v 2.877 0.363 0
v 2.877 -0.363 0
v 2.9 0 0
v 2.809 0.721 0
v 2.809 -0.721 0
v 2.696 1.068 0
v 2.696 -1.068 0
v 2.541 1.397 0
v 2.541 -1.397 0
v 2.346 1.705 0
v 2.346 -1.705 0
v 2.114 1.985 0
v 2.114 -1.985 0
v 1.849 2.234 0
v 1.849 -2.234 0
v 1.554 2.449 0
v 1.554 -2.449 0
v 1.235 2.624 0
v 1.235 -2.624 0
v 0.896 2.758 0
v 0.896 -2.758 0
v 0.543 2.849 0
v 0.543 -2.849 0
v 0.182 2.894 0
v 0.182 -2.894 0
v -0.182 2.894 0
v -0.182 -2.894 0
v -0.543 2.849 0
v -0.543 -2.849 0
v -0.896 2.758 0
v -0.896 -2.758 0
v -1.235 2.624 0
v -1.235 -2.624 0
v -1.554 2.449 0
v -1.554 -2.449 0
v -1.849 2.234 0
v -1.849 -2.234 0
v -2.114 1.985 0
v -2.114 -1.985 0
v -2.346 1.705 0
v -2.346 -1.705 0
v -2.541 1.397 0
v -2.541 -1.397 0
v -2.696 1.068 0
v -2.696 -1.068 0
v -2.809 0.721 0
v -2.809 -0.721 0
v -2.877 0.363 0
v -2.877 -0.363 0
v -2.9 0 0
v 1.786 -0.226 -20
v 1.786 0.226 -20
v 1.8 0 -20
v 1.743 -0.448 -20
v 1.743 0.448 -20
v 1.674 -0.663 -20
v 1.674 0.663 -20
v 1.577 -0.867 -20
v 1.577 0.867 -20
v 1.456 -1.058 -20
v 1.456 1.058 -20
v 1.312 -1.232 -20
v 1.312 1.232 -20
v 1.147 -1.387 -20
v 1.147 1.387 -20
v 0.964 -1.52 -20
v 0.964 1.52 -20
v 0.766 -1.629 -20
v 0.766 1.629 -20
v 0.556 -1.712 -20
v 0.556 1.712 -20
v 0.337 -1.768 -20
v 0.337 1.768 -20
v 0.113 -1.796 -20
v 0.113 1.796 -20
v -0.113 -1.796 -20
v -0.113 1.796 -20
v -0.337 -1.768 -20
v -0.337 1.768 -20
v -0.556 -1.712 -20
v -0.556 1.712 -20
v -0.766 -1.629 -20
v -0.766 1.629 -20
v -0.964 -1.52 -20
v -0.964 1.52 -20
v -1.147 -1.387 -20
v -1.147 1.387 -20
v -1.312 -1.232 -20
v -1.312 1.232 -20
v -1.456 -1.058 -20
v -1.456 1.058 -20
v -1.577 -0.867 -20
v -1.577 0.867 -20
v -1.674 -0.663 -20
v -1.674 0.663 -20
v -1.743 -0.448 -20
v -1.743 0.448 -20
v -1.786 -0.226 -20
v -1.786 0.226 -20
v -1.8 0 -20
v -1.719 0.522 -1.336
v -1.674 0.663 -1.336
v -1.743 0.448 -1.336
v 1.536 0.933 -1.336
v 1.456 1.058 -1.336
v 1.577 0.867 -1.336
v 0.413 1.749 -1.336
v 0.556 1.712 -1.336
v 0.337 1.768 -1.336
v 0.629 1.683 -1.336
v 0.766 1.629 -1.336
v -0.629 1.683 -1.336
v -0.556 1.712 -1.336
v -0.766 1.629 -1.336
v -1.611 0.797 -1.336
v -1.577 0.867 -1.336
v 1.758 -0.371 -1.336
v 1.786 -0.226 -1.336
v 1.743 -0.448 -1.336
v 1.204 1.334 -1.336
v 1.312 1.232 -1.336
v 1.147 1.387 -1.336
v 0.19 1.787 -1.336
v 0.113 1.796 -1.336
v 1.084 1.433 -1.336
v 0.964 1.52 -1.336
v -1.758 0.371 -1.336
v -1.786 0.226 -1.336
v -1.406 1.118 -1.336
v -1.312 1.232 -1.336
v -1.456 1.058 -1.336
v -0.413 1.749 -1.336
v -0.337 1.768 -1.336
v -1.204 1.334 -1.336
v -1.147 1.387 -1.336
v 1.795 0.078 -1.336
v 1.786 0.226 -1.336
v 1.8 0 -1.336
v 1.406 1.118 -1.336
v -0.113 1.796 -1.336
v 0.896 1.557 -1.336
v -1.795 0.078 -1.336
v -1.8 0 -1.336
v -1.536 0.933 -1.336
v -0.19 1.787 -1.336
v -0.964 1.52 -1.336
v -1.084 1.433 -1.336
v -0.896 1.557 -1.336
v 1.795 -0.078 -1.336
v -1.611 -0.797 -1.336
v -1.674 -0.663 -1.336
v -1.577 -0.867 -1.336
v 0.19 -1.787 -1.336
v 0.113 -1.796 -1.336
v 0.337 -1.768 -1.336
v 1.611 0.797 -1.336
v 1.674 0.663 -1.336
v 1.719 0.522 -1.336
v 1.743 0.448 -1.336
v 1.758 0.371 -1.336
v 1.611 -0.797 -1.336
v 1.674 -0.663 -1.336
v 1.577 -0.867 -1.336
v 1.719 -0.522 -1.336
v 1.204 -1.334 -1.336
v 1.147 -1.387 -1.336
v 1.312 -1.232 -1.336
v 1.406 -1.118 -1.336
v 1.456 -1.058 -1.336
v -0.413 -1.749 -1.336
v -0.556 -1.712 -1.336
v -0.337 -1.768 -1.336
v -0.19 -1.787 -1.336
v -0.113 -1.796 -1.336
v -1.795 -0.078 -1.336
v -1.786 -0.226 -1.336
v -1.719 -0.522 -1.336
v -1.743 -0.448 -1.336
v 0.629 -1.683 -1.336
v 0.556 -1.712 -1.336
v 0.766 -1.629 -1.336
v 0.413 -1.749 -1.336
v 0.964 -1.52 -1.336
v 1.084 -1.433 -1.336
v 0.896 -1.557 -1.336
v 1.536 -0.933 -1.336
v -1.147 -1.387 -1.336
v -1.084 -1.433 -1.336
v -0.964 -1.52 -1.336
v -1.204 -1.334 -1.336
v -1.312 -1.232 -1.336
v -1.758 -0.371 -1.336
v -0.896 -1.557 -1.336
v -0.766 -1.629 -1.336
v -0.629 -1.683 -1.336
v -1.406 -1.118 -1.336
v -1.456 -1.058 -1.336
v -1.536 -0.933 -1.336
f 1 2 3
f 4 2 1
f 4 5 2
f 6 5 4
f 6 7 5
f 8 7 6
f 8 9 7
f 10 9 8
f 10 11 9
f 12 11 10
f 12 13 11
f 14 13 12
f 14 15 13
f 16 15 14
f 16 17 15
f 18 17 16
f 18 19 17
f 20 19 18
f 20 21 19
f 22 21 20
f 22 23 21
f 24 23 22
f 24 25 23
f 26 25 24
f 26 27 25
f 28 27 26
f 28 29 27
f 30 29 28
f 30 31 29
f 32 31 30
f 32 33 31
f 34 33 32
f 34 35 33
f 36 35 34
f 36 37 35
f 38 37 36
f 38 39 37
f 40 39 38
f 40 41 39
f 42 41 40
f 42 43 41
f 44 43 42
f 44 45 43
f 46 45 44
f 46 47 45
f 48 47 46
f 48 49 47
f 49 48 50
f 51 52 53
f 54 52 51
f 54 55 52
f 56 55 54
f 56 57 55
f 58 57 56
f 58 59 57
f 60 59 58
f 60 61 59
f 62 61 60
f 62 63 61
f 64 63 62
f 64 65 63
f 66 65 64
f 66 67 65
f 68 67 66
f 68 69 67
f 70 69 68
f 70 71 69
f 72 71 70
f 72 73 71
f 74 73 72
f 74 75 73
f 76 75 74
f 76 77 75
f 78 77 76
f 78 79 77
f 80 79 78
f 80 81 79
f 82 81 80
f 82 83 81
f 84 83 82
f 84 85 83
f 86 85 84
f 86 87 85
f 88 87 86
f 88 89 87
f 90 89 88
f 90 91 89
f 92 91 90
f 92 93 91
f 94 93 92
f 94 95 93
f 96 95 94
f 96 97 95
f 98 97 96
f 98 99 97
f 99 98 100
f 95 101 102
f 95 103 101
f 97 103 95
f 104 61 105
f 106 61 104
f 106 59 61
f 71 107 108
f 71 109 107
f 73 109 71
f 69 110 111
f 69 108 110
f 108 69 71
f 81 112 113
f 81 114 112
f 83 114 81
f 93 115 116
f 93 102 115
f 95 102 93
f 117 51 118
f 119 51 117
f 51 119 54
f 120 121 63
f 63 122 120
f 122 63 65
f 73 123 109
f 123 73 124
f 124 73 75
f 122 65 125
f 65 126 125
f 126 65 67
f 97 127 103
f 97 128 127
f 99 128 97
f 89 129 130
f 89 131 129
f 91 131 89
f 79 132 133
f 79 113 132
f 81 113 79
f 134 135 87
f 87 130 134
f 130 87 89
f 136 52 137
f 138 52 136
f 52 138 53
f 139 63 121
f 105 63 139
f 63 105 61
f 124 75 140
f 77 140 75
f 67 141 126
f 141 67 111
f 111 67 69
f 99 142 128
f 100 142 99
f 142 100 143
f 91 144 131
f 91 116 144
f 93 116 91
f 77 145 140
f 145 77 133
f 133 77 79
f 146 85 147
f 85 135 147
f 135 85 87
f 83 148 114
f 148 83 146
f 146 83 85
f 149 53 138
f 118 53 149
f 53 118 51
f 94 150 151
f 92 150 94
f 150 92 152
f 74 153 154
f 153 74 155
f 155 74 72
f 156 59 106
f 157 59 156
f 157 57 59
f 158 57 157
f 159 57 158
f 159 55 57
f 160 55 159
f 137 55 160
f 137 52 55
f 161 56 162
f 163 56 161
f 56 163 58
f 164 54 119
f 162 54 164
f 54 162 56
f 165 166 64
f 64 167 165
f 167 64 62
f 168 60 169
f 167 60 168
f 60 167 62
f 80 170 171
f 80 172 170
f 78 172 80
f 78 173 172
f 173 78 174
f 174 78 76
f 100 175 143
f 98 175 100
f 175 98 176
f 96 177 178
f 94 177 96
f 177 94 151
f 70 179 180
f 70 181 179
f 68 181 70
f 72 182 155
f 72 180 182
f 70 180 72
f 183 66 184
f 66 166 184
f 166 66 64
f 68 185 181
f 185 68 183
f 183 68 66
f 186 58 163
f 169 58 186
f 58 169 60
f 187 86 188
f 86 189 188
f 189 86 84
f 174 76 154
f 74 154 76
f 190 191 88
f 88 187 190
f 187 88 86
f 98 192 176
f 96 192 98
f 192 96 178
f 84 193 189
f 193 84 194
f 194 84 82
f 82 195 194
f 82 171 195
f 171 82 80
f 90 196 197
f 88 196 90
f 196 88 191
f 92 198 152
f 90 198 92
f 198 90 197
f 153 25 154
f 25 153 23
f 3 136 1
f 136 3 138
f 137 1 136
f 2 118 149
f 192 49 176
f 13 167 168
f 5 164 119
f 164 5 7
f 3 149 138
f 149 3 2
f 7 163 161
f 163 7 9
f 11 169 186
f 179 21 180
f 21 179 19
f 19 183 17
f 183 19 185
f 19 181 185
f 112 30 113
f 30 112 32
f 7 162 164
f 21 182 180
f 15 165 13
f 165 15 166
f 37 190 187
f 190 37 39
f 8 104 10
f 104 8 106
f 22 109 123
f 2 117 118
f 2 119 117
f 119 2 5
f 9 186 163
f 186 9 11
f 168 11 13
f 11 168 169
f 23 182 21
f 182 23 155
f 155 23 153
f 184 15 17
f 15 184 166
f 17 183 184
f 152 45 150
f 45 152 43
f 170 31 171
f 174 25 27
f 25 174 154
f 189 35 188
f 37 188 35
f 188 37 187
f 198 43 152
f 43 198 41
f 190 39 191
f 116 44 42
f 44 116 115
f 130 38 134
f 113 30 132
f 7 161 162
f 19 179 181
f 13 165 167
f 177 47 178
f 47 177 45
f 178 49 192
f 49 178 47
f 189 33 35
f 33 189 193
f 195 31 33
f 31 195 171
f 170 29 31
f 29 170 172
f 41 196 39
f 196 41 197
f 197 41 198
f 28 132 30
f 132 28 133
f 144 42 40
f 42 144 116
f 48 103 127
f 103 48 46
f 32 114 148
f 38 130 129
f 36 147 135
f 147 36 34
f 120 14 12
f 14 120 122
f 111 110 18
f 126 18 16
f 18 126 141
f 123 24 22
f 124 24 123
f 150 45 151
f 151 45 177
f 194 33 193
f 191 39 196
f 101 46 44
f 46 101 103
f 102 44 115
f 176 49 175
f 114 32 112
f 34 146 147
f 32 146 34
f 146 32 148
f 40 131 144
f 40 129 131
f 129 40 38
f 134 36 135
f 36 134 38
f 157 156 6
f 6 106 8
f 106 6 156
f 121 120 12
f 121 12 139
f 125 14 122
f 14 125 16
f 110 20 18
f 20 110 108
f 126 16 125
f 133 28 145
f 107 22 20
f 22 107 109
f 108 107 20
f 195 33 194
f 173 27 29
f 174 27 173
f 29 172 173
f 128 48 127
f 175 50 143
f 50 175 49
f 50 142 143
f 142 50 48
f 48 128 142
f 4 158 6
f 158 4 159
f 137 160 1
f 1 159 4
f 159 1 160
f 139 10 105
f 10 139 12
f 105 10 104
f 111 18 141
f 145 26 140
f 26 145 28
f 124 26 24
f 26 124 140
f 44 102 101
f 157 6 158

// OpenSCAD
$fn = 50;


difference() {
	union() {
		translate(v = [0, 0, 0]) {
			rotate(a = [0, 0, 0]) {
				difference() {
					union() {
						translate(v = [0, 0, -20.0000000000]) {
							cylinder(h = 20, r = 1.5000000000);
						}
						translate(v = [0, 0, -20.0000000000]) {
							cylinder(h = 20, r = 1.8000000000);
						}
						translate(v = [0, 0, -1.7000000000]) {
							cylinder(h = 1.7000000000, r1 = 1.5000000000, r2 = 2.9000000000);
						}
						translate(v = [0, 0, -20.0000000000]) {
							cylinder(h = 20, r = 1.5000000000);
						}
					}
					union();
				}
			}
		}
	}
	union();
}
